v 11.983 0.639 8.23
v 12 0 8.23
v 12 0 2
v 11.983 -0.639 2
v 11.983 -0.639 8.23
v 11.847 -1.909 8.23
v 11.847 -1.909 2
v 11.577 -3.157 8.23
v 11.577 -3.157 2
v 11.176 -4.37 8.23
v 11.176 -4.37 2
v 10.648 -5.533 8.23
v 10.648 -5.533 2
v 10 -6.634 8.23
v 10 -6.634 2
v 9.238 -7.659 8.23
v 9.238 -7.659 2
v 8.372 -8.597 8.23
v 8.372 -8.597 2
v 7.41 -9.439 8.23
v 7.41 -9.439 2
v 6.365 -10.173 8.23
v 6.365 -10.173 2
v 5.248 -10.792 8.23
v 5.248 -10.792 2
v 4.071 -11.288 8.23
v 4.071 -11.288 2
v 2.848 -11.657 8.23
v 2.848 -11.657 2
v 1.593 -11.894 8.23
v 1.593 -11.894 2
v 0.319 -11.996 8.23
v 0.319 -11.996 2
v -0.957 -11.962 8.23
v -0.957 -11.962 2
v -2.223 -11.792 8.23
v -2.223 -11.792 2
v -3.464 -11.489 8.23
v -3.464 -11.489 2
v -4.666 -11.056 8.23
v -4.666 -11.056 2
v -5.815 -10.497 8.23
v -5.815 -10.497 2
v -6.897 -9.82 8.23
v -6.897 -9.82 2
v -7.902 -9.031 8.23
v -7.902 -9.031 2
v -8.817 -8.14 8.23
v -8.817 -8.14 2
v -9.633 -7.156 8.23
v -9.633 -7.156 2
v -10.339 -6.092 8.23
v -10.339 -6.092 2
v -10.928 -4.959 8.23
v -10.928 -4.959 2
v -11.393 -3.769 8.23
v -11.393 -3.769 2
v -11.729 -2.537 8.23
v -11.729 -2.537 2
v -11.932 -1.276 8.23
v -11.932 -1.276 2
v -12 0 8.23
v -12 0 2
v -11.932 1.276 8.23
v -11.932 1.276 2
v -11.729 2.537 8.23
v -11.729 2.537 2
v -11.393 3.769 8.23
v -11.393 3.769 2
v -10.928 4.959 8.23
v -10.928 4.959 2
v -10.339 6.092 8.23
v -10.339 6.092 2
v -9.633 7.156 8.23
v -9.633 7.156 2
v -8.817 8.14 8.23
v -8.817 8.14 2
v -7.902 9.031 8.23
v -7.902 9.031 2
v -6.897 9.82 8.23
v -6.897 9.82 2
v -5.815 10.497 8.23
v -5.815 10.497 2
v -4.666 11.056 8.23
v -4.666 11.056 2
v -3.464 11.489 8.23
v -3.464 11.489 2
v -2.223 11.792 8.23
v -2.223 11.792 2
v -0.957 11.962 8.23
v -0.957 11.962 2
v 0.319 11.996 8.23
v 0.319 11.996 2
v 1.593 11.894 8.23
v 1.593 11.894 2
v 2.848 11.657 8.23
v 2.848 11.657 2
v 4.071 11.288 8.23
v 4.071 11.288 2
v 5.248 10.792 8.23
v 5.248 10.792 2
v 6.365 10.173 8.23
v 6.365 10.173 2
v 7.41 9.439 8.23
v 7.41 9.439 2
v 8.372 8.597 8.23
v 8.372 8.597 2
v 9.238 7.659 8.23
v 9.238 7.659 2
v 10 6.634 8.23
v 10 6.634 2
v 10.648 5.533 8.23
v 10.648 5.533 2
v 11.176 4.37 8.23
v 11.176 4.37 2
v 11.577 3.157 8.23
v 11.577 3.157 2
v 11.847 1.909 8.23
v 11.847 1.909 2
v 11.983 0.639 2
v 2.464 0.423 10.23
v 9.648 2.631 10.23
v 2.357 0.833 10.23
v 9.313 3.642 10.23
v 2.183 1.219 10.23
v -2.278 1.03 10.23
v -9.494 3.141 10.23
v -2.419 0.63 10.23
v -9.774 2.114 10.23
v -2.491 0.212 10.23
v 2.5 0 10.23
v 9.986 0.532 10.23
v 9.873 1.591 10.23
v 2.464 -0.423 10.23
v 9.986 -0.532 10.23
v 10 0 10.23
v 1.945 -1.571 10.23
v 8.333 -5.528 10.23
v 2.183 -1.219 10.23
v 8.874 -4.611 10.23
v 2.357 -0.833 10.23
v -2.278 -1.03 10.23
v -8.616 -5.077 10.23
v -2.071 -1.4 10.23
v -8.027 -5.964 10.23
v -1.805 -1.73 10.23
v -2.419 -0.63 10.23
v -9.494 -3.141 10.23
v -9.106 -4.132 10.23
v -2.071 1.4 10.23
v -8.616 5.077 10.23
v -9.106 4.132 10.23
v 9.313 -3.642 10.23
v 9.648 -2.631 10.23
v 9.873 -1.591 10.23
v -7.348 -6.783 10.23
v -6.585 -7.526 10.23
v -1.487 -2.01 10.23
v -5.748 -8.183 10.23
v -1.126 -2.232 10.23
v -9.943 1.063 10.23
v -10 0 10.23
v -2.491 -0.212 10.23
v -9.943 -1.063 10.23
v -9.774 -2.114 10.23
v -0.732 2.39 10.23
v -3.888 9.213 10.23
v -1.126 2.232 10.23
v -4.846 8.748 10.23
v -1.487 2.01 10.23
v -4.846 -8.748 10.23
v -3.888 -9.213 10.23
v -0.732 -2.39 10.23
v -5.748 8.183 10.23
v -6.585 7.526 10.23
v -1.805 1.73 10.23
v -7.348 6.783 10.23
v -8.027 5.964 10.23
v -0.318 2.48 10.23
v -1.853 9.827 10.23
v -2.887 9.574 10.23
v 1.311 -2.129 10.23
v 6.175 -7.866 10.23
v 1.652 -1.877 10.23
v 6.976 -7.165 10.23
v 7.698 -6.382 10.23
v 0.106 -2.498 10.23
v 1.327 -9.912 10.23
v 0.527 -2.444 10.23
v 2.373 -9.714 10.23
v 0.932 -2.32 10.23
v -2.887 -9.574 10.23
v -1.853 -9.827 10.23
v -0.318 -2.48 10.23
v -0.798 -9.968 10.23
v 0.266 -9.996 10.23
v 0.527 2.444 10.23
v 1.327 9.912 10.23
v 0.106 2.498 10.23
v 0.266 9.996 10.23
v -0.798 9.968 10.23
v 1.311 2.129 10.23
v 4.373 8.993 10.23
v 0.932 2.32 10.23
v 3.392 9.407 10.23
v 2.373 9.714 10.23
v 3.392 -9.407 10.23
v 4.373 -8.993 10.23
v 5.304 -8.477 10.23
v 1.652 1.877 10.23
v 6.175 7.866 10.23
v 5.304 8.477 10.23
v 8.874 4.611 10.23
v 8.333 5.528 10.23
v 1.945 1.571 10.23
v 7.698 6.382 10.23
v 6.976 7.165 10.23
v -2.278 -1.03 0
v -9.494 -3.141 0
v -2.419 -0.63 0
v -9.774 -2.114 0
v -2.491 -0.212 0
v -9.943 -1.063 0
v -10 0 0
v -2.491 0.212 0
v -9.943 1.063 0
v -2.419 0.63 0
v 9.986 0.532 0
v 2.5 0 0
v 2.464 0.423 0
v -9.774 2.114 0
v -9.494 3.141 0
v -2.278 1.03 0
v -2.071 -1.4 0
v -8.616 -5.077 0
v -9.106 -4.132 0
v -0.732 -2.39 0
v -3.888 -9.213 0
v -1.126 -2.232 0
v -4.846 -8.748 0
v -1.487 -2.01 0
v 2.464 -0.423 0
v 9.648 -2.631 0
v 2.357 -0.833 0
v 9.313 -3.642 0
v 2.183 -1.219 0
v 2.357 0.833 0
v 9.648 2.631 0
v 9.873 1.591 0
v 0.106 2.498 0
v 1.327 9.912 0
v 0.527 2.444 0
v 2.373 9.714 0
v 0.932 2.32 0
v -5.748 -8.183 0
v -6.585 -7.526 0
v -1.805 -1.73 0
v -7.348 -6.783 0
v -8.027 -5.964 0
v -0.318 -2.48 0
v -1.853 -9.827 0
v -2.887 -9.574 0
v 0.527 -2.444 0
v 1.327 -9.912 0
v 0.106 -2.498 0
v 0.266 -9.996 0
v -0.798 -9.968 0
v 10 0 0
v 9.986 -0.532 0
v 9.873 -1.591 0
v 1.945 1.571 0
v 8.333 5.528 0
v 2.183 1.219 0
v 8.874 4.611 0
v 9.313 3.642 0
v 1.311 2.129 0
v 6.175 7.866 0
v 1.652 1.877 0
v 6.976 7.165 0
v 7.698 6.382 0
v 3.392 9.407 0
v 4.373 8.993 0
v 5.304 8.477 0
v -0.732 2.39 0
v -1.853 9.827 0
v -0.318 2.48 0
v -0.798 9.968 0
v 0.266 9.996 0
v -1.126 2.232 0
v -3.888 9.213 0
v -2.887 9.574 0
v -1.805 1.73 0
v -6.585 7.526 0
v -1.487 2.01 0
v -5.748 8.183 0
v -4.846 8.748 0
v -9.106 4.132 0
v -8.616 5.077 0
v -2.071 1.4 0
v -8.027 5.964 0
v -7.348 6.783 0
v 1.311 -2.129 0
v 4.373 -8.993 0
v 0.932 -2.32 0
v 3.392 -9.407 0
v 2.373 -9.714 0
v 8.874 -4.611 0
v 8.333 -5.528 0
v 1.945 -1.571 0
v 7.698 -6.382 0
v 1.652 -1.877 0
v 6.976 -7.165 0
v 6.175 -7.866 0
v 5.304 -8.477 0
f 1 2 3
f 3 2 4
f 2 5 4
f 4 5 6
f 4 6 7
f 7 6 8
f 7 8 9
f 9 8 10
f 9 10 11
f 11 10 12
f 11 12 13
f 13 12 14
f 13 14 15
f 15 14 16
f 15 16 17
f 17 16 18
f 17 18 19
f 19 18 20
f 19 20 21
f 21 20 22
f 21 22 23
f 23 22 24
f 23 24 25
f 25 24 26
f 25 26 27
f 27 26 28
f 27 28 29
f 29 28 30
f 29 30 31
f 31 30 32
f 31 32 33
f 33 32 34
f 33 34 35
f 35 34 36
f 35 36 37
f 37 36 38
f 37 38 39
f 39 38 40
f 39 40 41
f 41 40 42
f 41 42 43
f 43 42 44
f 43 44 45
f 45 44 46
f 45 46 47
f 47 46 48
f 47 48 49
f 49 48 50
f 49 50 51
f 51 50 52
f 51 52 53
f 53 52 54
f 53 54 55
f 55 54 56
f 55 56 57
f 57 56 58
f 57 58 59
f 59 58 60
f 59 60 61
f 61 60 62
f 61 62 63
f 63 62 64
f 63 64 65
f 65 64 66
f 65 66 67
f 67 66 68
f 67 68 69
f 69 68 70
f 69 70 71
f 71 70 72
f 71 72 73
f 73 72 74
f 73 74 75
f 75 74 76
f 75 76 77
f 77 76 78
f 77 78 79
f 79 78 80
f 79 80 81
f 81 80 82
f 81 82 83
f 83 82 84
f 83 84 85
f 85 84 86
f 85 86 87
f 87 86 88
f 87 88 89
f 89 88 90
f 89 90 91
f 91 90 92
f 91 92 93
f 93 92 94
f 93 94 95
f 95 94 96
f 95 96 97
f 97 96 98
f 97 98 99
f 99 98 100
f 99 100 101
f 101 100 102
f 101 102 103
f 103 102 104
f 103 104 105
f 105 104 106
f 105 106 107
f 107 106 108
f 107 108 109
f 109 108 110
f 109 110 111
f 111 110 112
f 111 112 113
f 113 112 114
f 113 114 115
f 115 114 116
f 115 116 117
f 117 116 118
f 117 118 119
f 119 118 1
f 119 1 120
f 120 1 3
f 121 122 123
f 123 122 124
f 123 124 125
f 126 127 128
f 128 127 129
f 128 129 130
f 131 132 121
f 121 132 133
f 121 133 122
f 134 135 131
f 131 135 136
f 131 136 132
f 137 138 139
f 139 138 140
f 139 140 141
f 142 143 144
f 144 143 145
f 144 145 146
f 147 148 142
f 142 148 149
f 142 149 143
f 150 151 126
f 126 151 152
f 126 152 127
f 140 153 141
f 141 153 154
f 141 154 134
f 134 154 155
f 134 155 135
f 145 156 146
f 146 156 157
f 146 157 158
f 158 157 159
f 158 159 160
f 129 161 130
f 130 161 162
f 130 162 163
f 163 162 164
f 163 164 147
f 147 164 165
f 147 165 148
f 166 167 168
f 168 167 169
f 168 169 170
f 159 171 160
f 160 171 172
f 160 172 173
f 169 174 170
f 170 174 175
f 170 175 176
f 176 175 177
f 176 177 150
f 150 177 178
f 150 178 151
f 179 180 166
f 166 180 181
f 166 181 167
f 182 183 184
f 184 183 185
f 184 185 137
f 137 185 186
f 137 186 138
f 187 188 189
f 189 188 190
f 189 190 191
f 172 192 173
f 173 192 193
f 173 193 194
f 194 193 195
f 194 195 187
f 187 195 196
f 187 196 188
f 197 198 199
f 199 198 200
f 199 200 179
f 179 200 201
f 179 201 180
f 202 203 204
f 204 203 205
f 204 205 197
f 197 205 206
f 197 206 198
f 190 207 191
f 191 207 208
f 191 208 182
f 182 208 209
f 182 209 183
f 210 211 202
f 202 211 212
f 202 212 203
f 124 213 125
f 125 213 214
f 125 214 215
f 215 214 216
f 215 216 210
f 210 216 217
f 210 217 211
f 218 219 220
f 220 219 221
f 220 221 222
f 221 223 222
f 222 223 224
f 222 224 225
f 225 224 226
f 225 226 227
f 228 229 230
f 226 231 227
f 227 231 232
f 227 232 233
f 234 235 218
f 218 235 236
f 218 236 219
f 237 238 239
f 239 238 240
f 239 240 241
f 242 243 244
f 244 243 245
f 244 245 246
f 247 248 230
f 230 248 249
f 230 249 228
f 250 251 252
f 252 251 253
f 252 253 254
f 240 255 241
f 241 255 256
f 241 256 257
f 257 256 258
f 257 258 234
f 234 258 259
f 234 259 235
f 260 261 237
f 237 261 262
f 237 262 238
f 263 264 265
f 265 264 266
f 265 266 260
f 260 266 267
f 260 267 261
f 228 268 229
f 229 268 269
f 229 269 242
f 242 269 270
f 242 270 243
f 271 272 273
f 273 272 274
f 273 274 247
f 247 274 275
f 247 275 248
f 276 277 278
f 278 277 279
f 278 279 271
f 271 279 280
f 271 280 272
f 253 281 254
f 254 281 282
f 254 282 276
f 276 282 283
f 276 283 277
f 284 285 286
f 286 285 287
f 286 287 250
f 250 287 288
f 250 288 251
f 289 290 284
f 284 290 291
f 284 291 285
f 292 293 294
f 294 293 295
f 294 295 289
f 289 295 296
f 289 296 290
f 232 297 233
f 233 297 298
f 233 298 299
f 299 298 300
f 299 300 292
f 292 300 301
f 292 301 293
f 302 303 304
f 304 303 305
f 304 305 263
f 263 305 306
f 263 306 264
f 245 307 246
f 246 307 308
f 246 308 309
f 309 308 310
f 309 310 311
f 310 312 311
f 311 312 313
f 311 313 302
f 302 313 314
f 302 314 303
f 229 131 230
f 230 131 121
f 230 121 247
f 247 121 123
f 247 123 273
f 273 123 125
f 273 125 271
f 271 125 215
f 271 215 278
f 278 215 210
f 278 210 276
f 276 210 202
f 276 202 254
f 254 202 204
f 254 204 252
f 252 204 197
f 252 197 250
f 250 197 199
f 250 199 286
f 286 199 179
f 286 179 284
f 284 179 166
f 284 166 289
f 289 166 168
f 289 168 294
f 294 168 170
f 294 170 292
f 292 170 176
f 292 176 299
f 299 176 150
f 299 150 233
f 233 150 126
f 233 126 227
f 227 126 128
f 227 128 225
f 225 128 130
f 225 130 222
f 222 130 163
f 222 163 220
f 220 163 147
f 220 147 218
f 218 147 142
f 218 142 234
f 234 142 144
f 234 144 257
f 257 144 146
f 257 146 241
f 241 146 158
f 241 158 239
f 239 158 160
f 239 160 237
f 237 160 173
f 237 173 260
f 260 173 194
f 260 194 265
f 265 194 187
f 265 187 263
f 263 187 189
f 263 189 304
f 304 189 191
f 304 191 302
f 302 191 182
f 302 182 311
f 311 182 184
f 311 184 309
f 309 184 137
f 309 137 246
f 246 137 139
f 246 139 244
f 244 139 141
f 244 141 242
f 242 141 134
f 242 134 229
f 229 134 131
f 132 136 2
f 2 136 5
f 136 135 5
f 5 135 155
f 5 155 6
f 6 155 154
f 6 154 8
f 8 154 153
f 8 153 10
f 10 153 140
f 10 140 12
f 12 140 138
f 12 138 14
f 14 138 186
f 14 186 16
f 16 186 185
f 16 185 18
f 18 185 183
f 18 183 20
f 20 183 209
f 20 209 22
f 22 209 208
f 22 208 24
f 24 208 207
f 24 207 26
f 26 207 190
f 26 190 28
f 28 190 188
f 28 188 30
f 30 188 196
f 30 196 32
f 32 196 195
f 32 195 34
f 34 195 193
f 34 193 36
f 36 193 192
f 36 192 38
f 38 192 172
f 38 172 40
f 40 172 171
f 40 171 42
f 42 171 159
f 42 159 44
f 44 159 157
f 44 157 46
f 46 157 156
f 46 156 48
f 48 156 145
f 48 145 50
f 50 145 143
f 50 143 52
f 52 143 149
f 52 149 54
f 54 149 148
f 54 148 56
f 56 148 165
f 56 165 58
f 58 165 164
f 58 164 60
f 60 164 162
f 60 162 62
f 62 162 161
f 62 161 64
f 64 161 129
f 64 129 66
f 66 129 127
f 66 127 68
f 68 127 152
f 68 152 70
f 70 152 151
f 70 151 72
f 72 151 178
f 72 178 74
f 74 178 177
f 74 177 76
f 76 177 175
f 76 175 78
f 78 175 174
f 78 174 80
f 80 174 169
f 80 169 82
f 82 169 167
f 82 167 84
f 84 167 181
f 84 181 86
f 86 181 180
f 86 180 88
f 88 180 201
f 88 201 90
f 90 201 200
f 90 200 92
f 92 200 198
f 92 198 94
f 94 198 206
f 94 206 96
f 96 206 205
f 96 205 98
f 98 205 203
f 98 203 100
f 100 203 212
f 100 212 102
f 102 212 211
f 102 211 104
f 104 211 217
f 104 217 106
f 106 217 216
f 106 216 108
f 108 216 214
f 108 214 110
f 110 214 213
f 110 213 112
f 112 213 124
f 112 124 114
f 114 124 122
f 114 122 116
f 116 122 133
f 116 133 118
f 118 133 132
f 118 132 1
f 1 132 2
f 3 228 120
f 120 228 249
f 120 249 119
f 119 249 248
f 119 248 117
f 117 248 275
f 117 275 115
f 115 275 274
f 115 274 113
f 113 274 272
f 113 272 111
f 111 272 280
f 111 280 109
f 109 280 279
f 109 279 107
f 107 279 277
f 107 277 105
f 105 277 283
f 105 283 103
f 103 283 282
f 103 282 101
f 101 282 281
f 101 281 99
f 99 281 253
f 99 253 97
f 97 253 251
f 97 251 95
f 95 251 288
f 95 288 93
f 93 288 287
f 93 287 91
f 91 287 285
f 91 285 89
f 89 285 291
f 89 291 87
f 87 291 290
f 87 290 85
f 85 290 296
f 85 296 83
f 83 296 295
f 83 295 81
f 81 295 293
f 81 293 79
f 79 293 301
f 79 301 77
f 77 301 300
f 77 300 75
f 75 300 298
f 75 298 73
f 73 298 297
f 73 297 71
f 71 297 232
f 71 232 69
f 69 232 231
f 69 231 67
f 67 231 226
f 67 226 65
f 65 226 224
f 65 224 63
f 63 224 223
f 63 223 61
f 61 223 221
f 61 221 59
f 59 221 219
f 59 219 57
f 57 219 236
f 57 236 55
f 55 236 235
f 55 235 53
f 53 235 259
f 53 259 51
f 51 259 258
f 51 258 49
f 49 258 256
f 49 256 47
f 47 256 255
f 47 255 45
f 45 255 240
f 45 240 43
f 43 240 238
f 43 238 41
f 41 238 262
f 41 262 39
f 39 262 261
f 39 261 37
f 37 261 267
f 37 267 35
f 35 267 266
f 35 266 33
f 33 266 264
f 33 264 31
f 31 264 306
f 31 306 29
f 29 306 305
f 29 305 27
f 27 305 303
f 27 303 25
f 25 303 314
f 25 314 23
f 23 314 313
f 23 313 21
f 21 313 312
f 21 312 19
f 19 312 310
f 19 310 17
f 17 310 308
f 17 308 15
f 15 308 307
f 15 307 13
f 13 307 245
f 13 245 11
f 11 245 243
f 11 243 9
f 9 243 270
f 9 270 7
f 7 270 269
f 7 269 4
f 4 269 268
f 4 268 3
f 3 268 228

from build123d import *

# Parameters (mm, degrees)
SKETCH2_R           = 12
BOSS_EXTRUDE1_DEPTH = 10.23
SKETCH3_R           = 2.5
CUT_EXTRUDE1_DEPTH  = 20.815471228
CHAMFER1_SIZE       = 2
CHAMFER2_SIZE       = 2


with BuildPart() as part:
    # Sketch2 → Boss-Extrude1 (new body)
    with BuildSketch(Plane.XY):
        Circle(SKETCH2_R)
    extrude(amount=BOSS_EXTRUDE1_DEPTH)

    # Sketch3 → Cut-Extrude1 (cut, through all)
    with BuildSketch(Plane.XY.offset(10.23)):
        Circle(SKETCH3_R)
    extrude(amount=-CUT_EXTRUDE1_DEPTH, mode=Mode.SUBTRACT)

    # Chamfer1
    chamfer1_edges = [part.edges().sort_by_distance(p)[0] for p in [
        (-12, 0, 10.23),
    ]]
    chamfer(chamfer1_edges, length=CHAMFER1_SIZE)

    # Chamfer2
    chamfer2_edges = [part.edges().sort_by_distance(p)[0] for p in [
        (-12, 0, 0),
    ]]
    chamfer(chamfer2_edges, length=CHAMFER2_SIZE)


solid = part.part
